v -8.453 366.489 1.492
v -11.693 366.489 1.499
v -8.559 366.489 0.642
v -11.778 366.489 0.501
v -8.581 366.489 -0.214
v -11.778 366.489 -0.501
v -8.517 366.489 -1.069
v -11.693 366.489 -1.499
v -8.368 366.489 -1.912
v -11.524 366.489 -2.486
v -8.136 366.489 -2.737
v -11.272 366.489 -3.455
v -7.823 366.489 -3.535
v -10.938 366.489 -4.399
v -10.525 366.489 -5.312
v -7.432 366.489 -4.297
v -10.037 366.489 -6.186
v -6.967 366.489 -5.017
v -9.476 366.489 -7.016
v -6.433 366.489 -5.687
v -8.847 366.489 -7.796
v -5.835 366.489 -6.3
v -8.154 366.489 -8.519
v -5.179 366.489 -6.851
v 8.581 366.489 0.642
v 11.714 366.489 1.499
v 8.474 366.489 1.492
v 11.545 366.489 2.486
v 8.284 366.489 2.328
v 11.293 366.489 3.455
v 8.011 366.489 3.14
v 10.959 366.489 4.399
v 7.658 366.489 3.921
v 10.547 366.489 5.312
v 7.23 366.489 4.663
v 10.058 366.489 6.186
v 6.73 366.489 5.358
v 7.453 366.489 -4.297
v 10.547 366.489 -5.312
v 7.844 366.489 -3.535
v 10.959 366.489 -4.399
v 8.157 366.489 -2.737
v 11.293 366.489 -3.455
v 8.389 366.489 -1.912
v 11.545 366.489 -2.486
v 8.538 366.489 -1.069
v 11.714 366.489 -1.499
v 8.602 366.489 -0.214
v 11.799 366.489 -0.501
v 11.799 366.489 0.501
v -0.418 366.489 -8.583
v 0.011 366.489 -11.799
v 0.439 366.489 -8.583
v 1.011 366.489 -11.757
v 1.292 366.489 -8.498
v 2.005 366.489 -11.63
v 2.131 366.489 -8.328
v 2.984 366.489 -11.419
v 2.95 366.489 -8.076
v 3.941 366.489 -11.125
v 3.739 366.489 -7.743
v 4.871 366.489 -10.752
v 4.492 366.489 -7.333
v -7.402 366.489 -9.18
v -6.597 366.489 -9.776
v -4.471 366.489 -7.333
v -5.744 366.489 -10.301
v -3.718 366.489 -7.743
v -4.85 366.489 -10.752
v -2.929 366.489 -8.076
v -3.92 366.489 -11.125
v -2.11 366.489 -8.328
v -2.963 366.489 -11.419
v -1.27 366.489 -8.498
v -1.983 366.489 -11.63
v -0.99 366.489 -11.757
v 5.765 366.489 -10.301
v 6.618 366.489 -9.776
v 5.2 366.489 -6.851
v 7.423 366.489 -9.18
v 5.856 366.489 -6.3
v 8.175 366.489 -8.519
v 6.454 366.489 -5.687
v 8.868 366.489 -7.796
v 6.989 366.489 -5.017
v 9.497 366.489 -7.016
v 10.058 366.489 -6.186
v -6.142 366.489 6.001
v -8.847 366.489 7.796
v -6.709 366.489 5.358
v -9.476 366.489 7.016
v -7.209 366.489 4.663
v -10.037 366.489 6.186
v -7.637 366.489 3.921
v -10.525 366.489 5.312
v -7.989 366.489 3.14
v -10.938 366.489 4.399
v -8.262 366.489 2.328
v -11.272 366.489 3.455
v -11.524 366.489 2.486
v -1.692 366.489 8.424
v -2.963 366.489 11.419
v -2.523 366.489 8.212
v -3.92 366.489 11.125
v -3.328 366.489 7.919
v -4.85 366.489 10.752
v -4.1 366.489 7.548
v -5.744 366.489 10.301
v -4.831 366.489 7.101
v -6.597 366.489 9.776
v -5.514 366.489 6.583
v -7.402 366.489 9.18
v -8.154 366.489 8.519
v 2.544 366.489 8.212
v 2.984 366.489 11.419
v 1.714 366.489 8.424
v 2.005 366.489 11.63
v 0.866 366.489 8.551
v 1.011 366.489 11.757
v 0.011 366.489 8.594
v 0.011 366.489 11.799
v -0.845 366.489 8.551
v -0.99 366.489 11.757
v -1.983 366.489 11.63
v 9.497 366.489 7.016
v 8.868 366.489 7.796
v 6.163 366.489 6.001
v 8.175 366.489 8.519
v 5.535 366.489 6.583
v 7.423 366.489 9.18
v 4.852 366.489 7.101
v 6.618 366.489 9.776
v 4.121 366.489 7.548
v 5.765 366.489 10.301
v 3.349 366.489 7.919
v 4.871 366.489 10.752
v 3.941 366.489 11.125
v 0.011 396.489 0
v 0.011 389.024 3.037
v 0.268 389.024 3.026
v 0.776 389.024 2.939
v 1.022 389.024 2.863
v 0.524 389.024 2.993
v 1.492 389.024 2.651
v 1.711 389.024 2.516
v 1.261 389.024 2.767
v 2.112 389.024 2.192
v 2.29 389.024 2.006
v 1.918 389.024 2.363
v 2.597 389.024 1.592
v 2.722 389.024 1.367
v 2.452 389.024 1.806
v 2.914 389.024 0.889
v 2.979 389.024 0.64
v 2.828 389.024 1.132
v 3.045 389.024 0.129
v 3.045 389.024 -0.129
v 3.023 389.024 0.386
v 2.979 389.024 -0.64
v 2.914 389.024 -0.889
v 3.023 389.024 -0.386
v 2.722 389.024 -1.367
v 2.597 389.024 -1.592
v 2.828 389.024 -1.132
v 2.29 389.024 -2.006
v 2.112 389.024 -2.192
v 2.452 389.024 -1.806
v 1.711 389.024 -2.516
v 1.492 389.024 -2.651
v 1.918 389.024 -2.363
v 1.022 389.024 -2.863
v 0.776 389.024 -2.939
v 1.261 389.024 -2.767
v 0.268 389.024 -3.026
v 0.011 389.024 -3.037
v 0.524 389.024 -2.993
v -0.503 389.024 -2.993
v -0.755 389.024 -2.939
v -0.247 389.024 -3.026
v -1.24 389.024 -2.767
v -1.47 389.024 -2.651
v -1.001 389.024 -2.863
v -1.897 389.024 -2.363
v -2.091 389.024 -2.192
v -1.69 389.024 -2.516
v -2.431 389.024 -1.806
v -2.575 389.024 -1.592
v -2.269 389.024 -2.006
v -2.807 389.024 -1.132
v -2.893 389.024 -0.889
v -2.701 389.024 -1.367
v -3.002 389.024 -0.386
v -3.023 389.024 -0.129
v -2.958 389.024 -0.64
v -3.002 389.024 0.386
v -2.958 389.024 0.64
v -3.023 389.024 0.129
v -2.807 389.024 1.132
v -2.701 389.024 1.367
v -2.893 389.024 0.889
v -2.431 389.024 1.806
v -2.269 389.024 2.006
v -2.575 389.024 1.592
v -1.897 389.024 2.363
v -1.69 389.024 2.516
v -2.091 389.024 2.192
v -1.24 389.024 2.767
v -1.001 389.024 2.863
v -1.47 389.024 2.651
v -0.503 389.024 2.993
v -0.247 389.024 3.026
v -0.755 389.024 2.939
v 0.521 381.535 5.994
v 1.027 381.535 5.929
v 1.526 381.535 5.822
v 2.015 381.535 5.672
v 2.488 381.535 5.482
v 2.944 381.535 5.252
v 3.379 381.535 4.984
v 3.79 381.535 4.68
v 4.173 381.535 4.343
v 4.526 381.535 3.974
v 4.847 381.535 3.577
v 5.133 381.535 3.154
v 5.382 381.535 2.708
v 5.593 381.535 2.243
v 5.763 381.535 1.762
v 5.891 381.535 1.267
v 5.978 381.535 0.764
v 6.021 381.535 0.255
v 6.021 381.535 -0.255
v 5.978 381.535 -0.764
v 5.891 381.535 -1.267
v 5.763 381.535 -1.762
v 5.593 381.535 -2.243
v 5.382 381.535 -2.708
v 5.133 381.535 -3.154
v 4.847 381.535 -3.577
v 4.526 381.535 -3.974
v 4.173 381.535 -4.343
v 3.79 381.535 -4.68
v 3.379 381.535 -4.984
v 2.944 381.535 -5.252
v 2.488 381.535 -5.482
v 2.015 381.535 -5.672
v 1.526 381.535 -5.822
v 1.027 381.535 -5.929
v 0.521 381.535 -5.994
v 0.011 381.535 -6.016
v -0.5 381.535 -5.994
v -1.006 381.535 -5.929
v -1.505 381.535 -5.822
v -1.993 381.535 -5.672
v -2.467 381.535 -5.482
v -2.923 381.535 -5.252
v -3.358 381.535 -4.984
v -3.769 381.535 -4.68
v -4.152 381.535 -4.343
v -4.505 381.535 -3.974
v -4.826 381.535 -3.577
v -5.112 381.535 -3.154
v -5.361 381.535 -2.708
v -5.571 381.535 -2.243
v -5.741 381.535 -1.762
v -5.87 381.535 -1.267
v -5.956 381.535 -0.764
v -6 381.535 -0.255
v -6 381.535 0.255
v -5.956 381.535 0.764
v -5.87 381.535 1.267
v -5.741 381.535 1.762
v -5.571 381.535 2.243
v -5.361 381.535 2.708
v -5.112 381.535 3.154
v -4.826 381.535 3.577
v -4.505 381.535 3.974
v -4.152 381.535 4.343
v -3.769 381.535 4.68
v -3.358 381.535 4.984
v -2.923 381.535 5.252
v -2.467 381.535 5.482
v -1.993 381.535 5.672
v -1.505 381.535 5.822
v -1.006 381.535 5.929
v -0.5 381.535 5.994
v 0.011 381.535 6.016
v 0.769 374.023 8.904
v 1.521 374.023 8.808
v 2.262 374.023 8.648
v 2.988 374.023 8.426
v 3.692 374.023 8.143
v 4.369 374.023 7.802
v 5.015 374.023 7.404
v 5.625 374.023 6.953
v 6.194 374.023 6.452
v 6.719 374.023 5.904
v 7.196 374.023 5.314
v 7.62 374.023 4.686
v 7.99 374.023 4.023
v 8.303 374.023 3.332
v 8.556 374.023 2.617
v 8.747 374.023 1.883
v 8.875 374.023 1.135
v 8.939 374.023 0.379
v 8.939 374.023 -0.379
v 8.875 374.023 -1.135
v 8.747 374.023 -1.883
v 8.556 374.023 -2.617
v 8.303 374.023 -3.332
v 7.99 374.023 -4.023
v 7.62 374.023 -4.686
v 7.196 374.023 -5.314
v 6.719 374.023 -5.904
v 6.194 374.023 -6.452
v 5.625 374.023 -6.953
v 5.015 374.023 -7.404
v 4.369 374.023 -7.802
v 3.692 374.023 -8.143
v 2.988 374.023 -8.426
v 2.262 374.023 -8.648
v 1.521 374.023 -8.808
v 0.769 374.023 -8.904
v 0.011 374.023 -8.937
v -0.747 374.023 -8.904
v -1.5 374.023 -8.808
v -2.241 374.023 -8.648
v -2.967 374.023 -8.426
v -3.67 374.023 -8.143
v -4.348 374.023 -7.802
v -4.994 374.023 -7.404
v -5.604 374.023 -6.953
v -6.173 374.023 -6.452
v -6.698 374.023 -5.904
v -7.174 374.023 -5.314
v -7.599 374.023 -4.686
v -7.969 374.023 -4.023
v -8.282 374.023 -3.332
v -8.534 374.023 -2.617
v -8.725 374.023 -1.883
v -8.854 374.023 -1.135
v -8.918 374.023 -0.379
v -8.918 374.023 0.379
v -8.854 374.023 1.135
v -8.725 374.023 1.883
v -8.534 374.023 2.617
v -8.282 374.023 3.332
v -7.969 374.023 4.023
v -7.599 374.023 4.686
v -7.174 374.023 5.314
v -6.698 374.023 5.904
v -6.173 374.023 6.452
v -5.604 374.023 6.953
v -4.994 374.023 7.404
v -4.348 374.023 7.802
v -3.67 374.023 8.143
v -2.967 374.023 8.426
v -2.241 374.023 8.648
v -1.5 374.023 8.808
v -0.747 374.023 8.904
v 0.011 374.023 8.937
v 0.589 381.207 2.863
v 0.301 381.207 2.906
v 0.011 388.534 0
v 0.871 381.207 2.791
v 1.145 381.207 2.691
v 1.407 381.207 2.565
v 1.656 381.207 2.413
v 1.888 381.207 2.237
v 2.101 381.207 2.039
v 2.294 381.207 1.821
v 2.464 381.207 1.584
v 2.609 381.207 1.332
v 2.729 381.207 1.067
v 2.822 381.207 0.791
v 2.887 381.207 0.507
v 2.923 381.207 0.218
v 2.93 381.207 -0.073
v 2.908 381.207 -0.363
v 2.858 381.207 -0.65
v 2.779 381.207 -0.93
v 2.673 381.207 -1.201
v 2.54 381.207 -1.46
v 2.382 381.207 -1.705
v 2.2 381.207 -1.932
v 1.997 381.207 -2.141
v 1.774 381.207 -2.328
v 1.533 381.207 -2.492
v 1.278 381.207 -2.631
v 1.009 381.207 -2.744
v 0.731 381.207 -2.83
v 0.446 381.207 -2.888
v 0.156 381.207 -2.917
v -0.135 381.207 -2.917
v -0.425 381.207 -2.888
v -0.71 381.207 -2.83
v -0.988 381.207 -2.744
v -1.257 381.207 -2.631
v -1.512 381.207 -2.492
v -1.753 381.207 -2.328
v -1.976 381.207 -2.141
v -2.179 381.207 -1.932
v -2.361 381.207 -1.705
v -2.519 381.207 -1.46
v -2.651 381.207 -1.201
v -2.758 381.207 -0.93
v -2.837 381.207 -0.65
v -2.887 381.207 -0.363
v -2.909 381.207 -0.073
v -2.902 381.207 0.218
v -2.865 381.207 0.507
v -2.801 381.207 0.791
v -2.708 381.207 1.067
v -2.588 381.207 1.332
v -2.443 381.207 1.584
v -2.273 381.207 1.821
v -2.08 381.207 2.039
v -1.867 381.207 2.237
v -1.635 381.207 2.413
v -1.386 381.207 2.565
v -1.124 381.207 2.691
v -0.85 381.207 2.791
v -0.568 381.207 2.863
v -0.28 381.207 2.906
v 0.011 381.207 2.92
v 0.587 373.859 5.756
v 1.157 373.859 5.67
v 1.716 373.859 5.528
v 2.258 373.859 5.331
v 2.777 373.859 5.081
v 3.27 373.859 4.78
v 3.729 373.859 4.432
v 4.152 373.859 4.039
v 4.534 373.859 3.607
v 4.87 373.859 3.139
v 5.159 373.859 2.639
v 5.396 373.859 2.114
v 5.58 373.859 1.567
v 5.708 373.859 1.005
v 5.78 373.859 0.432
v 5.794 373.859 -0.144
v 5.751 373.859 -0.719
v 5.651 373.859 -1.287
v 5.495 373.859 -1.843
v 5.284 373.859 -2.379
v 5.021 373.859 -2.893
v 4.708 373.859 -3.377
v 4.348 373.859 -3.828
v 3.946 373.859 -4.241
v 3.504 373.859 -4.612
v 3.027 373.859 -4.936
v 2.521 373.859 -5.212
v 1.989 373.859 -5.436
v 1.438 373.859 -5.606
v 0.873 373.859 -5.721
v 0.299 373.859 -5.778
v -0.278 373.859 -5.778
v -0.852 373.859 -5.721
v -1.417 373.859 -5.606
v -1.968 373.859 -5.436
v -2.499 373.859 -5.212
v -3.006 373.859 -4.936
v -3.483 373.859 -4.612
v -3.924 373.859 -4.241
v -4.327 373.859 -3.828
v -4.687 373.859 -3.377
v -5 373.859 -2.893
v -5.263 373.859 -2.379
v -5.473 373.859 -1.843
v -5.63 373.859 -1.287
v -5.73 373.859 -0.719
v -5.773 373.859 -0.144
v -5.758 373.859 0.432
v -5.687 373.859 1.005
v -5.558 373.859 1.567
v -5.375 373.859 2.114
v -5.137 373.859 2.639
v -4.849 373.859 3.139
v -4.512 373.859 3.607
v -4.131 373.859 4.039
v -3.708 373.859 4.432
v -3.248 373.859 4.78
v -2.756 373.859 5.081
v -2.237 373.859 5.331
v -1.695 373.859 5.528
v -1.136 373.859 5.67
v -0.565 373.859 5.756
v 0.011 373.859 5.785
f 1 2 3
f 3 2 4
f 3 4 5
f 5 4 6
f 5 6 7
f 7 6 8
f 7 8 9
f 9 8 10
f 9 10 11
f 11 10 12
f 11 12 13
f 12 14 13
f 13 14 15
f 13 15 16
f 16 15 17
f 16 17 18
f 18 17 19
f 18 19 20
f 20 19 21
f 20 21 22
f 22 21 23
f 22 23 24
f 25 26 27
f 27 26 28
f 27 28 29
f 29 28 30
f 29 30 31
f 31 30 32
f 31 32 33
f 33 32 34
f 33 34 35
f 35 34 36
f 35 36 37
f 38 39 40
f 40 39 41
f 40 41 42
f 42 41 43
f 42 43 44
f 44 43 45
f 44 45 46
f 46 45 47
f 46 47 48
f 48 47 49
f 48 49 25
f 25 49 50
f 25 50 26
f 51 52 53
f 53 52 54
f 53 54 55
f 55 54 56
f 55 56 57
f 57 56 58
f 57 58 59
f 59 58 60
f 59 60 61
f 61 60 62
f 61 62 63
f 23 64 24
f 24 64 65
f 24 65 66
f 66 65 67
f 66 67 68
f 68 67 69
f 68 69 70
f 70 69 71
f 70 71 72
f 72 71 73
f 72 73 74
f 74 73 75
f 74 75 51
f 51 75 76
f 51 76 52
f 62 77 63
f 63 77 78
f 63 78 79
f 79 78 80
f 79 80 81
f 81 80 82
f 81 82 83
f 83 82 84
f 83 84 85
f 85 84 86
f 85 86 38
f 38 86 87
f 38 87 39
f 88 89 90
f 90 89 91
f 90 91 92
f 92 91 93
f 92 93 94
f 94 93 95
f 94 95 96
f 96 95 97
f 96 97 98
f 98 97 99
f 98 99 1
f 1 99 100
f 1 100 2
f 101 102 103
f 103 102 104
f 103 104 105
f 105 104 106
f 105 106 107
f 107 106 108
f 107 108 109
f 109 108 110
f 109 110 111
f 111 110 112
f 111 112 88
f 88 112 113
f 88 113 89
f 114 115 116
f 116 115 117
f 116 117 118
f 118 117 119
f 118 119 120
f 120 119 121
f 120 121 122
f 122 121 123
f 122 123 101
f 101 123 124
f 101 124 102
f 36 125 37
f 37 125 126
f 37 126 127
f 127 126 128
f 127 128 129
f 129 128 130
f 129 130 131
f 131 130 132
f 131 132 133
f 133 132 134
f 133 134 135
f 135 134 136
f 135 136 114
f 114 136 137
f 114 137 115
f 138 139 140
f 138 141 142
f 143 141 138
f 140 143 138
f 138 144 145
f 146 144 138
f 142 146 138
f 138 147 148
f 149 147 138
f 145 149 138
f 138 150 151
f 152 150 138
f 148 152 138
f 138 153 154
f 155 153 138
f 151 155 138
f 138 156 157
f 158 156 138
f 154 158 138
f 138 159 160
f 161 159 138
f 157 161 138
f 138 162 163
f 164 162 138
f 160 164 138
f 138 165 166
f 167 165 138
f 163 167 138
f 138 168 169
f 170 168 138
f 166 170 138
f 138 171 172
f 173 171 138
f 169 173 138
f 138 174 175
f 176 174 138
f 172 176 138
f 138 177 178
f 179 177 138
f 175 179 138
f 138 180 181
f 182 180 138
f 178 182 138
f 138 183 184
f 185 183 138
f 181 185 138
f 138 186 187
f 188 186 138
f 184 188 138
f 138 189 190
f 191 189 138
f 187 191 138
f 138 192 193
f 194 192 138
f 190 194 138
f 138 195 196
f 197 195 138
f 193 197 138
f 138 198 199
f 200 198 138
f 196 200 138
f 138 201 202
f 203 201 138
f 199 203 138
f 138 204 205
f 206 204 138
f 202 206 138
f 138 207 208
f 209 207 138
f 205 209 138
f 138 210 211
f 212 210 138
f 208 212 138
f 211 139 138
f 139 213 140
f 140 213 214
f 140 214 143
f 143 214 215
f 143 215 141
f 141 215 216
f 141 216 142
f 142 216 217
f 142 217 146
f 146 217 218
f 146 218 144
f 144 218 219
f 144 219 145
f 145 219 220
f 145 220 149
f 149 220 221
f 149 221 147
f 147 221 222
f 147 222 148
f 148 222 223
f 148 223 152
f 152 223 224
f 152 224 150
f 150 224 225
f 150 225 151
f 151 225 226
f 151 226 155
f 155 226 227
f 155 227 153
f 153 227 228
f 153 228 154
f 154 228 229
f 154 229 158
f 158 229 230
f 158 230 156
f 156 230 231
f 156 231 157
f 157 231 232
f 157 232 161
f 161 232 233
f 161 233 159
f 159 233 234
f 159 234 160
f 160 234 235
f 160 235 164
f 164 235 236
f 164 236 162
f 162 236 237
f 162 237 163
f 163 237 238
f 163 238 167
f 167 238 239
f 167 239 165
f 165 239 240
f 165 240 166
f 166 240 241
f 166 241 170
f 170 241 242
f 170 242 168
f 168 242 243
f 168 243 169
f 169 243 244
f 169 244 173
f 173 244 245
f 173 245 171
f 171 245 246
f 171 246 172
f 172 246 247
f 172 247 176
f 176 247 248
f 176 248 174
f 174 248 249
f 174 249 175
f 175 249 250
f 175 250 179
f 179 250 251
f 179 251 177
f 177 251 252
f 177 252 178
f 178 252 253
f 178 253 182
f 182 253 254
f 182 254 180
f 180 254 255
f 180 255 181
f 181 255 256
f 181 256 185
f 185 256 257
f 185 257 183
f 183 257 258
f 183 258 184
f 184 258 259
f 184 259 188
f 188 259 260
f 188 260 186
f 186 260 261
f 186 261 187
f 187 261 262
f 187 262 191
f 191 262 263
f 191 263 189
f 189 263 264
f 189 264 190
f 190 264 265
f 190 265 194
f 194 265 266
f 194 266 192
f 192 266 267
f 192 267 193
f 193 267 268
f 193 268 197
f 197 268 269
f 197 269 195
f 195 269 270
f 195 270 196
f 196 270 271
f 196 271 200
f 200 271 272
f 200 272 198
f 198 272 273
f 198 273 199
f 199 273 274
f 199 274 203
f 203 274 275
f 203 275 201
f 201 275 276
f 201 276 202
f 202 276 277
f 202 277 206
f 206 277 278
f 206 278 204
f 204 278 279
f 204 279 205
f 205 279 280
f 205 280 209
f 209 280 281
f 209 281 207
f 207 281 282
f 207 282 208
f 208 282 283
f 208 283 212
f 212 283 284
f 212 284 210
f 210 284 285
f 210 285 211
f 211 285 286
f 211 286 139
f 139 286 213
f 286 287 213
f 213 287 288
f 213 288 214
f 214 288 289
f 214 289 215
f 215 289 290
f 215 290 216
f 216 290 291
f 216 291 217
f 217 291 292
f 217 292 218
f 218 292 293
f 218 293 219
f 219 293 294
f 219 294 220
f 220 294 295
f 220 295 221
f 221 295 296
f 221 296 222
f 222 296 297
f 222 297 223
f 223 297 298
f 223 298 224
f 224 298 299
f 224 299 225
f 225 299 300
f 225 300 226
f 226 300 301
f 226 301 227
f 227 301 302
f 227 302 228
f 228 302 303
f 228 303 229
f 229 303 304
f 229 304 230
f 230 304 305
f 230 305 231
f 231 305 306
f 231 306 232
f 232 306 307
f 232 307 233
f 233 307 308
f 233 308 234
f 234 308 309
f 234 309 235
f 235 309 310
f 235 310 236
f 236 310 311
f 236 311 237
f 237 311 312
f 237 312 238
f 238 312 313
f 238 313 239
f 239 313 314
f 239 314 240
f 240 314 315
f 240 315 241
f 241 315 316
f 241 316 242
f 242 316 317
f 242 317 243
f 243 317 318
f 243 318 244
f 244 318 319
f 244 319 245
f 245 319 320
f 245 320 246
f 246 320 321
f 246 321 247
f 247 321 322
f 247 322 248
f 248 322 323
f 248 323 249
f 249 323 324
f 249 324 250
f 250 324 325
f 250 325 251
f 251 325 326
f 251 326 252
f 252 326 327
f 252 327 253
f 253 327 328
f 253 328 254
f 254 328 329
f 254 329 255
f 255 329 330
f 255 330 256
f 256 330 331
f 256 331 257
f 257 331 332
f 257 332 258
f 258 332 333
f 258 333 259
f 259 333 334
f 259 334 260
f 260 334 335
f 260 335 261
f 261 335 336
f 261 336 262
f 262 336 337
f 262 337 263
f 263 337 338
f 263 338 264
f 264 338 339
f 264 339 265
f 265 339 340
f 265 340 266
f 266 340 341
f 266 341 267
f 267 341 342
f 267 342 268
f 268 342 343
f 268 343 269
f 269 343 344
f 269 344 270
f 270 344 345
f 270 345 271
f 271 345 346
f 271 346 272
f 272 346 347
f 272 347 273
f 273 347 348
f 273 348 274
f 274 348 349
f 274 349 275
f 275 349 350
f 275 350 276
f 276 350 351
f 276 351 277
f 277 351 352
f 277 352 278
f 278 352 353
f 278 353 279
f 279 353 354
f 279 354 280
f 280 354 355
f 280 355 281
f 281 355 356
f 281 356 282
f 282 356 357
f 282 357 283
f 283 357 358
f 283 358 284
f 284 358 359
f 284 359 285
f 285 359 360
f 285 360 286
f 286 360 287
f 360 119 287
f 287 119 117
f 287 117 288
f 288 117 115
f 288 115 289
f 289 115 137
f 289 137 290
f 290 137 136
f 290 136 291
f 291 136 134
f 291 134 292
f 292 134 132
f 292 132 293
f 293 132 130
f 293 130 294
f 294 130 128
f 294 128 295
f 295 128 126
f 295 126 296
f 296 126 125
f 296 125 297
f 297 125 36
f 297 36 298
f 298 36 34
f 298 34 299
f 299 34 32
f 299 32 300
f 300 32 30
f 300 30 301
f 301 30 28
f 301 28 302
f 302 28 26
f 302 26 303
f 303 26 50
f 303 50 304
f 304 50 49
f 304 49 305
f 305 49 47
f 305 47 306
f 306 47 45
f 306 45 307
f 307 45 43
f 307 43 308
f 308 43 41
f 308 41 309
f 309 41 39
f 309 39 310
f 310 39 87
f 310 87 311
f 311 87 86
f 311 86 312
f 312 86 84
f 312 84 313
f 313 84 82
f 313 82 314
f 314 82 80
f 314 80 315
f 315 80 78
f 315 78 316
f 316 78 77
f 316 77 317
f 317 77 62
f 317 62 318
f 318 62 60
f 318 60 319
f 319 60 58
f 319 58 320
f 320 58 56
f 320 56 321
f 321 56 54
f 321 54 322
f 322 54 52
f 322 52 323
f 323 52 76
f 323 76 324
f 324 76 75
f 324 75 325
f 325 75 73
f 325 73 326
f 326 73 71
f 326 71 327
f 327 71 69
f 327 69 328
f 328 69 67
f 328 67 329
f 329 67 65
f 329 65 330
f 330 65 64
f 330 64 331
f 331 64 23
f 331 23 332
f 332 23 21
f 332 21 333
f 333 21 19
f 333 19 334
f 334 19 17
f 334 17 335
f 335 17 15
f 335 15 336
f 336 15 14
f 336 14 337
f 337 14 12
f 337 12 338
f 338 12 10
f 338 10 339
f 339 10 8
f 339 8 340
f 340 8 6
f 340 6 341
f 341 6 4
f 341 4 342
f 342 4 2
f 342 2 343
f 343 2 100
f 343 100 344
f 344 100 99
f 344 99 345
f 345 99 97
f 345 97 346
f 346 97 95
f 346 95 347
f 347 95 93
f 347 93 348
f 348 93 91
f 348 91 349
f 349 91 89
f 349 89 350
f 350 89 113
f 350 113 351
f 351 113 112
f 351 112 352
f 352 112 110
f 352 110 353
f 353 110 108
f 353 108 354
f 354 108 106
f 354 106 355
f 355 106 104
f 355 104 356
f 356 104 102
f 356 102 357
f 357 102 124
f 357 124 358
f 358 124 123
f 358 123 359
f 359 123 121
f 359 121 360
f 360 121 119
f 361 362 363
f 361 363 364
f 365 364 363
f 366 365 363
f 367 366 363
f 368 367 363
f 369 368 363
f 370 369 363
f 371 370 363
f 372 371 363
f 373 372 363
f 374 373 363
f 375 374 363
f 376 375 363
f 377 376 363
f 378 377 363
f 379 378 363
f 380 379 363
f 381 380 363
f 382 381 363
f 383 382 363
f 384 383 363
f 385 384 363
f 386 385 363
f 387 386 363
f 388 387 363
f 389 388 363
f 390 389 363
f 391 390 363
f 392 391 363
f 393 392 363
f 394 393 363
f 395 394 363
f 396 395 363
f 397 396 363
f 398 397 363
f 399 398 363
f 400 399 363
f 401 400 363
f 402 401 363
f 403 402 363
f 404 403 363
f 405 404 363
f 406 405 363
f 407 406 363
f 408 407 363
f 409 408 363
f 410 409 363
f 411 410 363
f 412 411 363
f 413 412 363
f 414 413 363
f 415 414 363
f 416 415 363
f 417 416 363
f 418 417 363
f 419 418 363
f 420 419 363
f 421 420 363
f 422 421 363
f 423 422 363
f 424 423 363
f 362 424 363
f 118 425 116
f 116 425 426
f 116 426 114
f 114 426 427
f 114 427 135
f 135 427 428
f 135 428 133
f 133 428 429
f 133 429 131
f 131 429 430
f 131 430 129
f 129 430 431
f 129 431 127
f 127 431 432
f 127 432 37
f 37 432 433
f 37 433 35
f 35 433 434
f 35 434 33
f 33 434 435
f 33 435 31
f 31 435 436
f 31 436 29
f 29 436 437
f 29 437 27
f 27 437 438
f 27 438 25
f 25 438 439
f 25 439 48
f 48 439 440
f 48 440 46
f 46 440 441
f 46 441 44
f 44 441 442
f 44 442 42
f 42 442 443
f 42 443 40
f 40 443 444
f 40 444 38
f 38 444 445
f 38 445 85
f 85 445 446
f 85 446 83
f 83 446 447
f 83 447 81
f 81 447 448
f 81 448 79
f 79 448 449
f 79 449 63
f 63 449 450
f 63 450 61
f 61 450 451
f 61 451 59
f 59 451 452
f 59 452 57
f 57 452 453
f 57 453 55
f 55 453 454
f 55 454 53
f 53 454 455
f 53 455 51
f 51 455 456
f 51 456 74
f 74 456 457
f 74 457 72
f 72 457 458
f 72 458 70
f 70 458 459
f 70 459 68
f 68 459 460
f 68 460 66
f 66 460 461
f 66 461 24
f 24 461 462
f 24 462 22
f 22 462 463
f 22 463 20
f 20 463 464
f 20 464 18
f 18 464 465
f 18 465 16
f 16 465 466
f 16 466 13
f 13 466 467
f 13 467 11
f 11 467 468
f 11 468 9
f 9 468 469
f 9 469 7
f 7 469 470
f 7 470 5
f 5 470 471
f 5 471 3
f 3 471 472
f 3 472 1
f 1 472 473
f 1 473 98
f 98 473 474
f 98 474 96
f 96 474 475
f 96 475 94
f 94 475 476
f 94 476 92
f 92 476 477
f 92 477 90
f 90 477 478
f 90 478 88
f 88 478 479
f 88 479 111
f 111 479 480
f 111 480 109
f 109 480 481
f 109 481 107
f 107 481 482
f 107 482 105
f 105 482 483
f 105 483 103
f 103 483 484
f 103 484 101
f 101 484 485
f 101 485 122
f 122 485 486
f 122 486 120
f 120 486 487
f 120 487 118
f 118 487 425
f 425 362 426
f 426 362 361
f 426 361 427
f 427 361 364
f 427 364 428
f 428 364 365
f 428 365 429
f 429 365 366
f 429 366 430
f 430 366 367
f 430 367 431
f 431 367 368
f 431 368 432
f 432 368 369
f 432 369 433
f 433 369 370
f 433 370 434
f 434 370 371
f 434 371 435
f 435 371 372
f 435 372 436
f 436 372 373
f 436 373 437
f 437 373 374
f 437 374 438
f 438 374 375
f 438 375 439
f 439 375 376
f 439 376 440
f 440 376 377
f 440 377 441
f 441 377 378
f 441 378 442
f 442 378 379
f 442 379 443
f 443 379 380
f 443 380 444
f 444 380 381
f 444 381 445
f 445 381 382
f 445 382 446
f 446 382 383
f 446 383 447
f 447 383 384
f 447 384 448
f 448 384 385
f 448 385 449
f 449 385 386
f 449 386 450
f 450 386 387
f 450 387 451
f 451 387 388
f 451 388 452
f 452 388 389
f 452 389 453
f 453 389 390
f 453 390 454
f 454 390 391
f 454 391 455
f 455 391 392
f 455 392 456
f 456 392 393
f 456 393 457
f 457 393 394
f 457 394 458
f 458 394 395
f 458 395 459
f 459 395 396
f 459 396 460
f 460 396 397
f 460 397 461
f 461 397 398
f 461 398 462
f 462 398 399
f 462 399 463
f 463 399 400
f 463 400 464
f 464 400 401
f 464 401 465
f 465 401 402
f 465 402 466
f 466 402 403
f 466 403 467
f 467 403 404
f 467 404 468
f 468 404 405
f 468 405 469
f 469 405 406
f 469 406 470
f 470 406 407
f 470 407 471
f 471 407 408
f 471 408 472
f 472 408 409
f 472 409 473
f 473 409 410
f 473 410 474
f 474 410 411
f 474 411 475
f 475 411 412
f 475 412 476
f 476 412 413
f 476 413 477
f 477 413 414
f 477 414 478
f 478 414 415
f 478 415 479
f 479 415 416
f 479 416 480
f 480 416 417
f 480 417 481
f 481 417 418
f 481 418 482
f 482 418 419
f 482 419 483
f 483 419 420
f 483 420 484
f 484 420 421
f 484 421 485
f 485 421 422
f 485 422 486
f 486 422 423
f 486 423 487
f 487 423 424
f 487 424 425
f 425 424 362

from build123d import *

# Parameters (mm, degrees)
BOSS_EXTRUDE1_REACH = 566.43
SKETCH5_R           = 78.35


# Read off the part's stored shape, not the designer's step: Shell1
with BuildPart() as part:
    # Sketch1 → Revolve3 (revolve)
    with BuildSketch(Plane.XY, mode=Mode.PRIVATE) as revolve3_sk:
        with BuildLine():
            Line((0, 400), (0, 402.756656622))
            ThreePointArc((0, 402.756656622), (60.363605816, 205.385909299), (80.75, 0))
            Line((80.75, 0), (80.75, -150))
            Line((80.75, -150), (78.35, -150))
            Line((78.35, -150), (78.35, 0))
            ThreePointArc((78.35, 0), (58.574924408, 202.078213736), (0, 396.489212171))
            Line((0, 396.489212171), (0, 400))
        make_face()
    revolve(revolve3_sk.sketch.rotate(Axis((0, 400, 0), (0, 1, 0)), 270), axis=Axis((0, 400, 0), (0, 1, 0)))


with BuildPart() as body_2:

    # Sketch5 → Boss-Extrude1 (new, up to next)
    with BuildSketch(Plane.XZ.offset(150), mode=Mode.PRIVATE) as boss_extrude1_sk1:
        with Locations(Location((0, 0, 0), (0, 0, 270))):
            Circle(SKETCH5_R)
    boss_extrude1_tool1 = extrude(boss_extrude1_sk1.sketch, amount=-BOSS_EXTRUDE1_REACH, mode=Mode.PRIVATE) - part.part
    add(boss_extrude1_tool1.solids().sort_by_distance((0, -150, 0))[0])


with BuildPart() as body_2_2:
    # Split1: the piece on the far side of the plane
    add(body_2.part)
    split(bisect_by=Plane.ZX.offset(366.489212171), keep=Keep.BOTTOM)


with BuildPart() as body_2_1:
    add(body_2.part)

    # Split1
    split(bisect_by=Plane.ZX.offset(366.489212171), keep=Keep.TOP)

    # Shell1 outline → Shell1 (revolve, cut)
    with BuildSketch(Plane.XY):
        with BuildLine():
            Line((0, 366.489212071), (8.594128749, 366.489212171))
            add(Edge.make_bspline(
                [(8.594128749, 366.489212171), (4.422525693, 377.560318323), (0, 388.533600877)],
                knots=[0.360348629, 0.360348629, 0.360348629, 0.383112862, 0.383112862, 0.383112862], degree=2, weights=[1, 0.999935224, 1]))
            Line((0, 388.533600877), (0, 366.489212071))
        make_face()
    revolve(axis=Axis((0, 0, 0), (0, 1, 0)), mode=Mode.SUBTRACT)


solid = body_2_1.part
